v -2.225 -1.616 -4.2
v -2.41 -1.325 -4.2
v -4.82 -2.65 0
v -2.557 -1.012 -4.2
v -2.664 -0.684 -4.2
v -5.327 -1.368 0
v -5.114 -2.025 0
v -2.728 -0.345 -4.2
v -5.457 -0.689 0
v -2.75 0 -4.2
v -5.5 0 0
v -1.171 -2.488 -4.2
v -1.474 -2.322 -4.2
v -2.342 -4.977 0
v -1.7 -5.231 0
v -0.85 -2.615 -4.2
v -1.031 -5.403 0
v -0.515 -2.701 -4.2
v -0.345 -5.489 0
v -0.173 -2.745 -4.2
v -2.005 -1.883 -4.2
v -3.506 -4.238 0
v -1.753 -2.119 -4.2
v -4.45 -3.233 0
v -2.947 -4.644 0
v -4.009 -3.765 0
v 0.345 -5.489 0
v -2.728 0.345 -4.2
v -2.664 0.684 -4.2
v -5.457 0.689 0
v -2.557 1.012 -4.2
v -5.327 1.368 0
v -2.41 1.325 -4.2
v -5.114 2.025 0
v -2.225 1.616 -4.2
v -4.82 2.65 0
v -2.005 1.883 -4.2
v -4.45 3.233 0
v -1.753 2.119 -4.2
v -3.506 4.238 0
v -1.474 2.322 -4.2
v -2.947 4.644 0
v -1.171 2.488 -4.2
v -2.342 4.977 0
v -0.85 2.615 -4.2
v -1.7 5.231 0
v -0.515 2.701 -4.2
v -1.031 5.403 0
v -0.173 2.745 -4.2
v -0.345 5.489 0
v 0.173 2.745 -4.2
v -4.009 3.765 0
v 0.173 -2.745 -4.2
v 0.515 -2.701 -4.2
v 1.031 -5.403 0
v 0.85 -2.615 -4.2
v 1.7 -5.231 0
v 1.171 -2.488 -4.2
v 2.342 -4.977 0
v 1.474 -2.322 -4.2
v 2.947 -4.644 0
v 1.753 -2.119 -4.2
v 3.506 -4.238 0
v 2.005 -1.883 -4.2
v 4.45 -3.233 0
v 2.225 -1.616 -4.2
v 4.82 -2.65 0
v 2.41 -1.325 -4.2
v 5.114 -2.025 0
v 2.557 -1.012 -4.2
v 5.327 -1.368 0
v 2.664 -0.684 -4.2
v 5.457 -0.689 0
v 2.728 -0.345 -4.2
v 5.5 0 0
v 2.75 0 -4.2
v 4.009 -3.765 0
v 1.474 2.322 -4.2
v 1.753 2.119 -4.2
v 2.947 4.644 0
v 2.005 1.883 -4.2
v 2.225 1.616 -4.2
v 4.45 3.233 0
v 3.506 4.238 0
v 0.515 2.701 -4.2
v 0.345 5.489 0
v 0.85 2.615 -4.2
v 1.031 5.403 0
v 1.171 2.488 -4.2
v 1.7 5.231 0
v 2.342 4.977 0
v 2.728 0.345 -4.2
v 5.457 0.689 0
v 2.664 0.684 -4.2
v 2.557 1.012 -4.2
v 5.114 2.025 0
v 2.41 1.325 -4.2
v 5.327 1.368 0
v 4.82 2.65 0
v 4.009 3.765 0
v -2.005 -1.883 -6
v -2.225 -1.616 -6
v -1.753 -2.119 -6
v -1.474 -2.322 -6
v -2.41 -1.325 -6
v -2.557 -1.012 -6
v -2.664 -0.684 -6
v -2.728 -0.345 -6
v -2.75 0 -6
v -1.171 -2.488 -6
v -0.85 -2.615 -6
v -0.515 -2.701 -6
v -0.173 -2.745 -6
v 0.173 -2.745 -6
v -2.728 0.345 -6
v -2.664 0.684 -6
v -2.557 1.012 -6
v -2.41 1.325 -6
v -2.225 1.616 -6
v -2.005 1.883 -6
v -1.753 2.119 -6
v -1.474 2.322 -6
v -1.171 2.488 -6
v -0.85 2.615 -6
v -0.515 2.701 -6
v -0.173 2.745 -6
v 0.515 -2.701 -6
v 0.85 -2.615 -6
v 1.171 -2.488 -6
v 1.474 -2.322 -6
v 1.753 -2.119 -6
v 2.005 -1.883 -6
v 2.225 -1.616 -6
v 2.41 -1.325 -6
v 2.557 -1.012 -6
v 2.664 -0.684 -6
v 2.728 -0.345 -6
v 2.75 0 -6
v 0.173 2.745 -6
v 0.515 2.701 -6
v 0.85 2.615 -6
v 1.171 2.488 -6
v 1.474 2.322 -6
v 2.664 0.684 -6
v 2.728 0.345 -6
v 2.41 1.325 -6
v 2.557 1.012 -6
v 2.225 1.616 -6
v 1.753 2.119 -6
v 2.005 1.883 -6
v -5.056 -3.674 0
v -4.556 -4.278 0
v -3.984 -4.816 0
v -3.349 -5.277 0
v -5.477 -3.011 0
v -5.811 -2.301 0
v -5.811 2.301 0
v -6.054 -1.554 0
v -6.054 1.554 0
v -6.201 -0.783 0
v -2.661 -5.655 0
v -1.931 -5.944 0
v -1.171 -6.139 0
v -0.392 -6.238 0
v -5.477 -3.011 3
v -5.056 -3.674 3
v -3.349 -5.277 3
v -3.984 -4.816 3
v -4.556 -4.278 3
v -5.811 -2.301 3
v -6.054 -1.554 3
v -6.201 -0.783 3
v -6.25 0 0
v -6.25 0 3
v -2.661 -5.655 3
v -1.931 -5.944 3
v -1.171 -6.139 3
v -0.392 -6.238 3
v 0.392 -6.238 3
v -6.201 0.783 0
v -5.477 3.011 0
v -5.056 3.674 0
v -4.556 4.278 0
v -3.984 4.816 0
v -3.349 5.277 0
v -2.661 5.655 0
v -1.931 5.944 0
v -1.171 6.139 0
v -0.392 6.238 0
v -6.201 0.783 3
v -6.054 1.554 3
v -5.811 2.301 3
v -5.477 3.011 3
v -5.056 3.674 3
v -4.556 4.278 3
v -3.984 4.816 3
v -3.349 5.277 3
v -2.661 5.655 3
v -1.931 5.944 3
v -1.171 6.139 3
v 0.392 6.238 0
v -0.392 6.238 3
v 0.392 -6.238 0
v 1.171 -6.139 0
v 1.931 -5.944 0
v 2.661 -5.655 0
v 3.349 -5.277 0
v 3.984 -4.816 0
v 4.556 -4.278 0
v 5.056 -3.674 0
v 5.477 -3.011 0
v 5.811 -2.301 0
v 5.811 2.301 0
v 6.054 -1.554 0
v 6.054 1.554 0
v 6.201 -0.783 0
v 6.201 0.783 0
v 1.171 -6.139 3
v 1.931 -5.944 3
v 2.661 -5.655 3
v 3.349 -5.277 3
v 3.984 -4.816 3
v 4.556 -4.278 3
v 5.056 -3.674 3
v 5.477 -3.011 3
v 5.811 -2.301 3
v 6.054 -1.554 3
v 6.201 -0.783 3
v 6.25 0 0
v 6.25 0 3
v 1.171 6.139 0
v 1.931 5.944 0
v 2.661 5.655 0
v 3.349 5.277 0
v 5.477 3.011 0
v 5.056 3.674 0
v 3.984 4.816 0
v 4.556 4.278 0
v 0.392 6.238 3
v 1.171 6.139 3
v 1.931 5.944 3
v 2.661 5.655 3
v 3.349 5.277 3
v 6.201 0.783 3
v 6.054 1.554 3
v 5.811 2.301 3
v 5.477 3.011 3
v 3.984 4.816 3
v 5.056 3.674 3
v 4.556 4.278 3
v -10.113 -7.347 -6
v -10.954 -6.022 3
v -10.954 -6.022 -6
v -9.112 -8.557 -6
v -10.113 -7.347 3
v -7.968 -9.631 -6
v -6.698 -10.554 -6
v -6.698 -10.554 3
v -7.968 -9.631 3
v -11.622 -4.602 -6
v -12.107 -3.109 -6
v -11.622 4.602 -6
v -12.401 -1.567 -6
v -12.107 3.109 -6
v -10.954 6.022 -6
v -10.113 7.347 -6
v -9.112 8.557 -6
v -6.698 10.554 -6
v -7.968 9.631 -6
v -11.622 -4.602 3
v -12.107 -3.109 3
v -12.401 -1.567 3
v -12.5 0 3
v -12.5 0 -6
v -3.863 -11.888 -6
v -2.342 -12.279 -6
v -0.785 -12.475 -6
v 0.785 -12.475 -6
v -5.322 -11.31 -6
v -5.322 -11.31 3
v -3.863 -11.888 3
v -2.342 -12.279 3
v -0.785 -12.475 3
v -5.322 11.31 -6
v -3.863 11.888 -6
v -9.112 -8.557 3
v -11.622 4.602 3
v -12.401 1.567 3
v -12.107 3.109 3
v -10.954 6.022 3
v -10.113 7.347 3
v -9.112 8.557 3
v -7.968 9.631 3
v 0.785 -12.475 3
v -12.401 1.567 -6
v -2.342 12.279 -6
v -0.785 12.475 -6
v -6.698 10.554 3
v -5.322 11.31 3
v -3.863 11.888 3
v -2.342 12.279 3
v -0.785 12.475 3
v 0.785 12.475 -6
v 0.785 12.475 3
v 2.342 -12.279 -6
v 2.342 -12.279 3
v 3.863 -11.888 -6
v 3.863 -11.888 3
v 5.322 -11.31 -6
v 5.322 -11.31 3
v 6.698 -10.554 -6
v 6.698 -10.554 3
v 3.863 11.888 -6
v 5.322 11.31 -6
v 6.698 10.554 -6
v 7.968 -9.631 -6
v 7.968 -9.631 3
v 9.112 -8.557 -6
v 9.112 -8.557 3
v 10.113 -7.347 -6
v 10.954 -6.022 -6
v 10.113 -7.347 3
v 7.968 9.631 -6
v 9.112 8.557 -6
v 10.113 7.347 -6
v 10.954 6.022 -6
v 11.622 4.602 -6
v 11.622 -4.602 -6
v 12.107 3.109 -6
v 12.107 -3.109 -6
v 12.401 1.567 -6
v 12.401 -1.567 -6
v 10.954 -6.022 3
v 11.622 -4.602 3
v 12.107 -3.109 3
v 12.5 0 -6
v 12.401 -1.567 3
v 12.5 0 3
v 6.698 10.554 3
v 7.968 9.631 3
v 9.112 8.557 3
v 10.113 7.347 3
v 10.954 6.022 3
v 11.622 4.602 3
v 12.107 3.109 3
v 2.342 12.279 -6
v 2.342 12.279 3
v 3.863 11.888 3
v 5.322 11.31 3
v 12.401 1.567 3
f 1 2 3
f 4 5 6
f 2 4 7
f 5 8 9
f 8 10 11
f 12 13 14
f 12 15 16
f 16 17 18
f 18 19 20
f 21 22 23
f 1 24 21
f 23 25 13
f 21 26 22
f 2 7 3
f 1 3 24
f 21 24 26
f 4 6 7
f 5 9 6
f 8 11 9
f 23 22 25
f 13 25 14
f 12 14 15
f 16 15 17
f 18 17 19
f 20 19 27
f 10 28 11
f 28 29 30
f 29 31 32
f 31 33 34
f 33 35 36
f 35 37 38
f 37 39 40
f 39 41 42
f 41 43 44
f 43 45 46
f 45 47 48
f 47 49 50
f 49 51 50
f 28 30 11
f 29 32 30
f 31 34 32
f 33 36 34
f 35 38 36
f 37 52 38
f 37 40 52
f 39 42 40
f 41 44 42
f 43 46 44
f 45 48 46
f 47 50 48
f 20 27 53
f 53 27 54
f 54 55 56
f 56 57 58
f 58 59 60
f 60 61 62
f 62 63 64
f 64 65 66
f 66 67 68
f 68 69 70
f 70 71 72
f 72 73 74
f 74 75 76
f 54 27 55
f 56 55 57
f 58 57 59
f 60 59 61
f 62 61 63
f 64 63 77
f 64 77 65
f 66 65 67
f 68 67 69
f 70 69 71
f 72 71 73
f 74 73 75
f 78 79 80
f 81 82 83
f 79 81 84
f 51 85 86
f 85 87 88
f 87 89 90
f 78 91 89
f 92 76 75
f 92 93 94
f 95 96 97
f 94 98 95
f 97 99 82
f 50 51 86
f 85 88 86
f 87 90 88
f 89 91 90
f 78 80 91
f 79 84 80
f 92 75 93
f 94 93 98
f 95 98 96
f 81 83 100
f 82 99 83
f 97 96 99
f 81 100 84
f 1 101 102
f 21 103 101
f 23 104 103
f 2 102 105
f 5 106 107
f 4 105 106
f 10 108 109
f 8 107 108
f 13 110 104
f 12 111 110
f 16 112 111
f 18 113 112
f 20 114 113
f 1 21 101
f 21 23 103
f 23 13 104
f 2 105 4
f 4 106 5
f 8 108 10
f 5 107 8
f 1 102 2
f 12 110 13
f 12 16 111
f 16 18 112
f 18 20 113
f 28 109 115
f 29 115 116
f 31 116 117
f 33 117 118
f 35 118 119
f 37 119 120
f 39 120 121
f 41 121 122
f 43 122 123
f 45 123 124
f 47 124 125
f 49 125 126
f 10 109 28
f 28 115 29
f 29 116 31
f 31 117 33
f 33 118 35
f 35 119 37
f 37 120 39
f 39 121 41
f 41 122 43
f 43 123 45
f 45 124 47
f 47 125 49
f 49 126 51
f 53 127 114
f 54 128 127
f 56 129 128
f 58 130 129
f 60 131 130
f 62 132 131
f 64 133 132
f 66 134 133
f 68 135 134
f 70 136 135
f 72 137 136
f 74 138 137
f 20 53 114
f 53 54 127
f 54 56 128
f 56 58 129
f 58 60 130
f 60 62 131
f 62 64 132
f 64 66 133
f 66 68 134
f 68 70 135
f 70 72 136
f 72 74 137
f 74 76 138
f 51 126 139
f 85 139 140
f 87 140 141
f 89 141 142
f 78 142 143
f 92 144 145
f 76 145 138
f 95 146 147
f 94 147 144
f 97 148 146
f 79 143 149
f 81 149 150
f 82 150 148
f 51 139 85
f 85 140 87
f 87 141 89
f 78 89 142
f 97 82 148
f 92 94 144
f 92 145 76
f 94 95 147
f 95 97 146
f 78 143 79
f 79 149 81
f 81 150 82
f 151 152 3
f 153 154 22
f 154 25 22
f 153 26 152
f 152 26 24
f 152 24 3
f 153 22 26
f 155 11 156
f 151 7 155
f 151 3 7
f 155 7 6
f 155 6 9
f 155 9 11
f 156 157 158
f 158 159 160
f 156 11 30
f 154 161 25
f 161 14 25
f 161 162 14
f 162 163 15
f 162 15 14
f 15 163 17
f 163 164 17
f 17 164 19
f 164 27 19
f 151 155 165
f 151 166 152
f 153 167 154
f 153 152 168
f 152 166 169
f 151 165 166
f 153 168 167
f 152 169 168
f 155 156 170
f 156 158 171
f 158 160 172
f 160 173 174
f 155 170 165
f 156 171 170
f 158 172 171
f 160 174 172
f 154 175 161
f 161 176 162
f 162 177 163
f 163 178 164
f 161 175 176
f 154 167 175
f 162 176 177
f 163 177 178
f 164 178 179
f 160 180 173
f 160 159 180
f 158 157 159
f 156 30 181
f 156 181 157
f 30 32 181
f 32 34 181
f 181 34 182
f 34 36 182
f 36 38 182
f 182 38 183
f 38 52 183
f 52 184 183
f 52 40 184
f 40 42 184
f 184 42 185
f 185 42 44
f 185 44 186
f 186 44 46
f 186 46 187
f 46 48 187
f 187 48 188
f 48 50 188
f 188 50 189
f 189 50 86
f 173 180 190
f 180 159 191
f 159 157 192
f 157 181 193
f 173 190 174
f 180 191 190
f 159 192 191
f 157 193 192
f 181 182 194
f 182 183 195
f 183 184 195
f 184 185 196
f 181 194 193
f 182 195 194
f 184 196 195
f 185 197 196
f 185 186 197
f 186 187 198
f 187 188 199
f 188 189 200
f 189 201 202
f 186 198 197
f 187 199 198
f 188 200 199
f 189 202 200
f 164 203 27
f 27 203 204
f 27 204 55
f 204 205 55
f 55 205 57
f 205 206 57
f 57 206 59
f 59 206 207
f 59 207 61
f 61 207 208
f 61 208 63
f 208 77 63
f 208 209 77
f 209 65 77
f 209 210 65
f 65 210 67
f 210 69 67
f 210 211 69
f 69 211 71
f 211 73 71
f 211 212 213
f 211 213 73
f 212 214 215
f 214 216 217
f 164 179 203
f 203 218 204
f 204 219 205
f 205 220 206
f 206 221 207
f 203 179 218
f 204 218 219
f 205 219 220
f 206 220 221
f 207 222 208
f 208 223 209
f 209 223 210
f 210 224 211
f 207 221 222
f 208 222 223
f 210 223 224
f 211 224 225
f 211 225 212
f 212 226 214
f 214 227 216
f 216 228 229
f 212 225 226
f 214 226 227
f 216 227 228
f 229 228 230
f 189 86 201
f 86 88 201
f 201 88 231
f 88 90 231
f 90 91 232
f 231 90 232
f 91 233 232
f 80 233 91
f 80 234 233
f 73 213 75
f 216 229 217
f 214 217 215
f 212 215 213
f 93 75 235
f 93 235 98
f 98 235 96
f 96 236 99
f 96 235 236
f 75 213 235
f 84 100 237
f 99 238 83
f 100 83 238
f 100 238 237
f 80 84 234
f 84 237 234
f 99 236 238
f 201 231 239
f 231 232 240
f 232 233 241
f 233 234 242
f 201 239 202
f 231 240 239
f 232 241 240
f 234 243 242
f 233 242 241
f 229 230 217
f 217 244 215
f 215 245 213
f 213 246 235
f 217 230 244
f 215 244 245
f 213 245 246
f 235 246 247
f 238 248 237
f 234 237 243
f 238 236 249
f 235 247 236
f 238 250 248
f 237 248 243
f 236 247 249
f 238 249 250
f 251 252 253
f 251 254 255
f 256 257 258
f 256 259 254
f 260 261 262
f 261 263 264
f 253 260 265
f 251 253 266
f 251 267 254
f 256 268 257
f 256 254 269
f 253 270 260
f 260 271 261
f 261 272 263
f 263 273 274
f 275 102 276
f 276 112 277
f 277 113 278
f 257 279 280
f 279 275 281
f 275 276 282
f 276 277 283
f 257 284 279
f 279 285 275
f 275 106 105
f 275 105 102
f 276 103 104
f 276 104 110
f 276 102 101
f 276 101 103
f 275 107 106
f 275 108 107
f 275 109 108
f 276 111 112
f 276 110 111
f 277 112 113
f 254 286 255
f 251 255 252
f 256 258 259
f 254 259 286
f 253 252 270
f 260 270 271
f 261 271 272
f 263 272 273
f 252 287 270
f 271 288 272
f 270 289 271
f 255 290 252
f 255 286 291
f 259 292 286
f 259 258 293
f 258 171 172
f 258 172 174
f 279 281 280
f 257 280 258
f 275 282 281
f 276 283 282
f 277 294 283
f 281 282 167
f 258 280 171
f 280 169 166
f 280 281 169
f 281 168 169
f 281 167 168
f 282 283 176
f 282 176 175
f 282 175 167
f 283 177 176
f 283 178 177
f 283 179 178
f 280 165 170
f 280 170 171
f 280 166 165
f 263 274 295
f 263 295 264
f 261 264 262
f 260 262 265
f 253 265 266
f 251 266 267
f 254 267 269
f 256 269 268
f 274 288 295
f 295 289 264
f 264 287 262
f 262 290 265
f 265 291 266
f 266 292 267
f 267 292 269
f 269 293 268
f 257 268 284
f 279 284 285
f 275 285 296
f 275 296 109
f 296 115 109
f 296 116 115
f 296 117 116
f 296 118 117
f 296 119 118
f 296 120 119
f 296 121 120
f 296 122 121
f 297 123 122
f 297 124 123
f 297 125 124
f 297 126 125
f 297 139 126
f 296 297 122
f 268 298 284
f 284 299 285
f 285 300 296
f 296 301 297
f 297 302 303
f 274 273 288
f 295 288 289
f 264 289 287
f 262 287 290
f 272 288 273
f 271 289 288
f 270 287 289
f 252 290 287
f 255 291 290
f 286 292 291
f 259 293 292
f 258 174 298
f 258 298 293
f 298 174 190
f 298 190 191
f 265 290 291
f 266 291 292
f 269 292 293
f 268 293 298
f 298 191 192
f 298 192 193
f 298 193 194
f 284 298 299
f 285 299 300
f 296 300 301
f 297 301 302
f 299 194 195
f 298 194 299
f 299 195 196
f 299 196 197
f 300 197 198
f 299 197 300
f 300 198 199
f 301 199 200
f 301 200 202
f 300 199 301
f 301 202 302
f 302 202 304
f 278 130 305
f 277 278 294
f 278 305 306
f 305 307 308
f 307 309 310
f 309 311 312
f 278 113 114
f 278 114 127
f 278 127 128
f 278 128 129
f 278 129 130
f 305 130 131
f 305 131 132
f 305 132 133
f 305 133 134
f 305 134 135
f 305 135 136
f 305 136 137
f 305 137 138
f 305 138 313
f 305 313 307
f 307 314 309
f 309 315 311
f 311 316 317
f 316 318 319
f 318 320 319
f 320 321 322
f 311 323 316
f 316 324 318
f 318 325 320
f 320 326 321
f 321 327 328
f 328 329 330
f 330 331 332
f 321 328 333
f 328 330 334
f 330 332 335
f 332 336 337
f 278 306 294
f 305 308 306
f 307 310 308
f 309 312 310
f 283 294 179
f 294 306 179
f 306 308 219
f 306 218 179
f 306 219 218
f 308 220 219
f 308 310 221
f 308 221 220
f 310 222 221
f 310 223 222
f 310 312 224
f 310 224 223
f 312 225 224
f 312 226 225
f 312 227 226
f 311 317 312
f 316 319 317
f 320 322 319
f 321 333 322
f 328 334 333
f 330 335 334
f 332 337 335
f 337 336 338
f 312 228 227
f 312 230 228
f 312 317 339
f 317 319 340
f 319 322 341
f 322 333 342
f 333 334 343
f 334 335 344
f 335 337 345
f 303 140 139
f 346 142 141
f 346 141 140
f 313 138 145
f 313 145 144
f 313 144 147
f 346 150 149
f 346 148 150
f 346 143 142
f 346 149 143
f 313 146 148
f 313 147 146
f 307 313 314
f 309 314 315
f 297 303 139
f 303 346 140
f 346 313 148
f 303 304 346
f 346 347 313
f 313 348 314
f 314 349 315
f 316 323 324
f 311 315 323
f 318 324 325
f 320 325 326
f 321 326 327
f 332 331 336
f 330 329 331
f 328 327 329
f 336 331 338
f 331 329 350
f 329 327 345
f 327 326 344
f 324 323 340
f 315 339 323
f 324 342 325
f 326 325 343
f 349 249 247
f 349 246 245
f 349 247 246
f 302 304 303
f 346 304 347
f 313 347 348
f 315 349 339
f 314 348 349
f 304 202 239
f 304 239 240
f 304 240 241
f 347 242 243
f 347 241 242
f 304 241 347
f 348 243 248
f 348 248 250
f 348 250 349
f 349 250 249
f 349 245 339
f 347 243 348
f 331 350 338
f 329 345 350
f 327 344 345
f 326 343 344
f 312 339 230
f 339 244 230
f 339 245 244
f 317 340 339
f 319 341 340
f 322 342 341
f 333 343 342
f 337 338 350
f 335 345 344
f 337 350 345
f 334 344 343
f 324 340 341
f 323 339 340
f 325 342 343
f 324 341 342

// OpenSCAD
$fn = 50;


difference() {
	union() {
		translate(v = [0, 0, -6.0000000000]) {
			cylinder(h = 9, r = 12.5000000000);
		}
	}
	union() {
		translate(v = [0, 0, 0]) {
			rotate(a = [0, 0, 0]) {
				difference() {
					union() {
						translate(v = [0, 0, -9.0000000000]) {
							cylinder(h = 9, r = 2.2500000000);
						}
						translate(v = [0, 0, -4.2000000000]) {
							cylinder(h = 4.2000000000, r1 = 2.7500000000, r2 = 5.5000000000);
						}
						translate(v = [0, 0, -9.0000000000]) {
							cylinder(h = 9, r = 2.7500000000);
						}
						translate(v = [0, 0, -9.0000000000]) {
							cylinder(h = 9, r = 2.2500000000);
						}
					}
					union();
				}
			}
		}
		#cylinder(h = 3, r = 6.2500000000);
	}
}
